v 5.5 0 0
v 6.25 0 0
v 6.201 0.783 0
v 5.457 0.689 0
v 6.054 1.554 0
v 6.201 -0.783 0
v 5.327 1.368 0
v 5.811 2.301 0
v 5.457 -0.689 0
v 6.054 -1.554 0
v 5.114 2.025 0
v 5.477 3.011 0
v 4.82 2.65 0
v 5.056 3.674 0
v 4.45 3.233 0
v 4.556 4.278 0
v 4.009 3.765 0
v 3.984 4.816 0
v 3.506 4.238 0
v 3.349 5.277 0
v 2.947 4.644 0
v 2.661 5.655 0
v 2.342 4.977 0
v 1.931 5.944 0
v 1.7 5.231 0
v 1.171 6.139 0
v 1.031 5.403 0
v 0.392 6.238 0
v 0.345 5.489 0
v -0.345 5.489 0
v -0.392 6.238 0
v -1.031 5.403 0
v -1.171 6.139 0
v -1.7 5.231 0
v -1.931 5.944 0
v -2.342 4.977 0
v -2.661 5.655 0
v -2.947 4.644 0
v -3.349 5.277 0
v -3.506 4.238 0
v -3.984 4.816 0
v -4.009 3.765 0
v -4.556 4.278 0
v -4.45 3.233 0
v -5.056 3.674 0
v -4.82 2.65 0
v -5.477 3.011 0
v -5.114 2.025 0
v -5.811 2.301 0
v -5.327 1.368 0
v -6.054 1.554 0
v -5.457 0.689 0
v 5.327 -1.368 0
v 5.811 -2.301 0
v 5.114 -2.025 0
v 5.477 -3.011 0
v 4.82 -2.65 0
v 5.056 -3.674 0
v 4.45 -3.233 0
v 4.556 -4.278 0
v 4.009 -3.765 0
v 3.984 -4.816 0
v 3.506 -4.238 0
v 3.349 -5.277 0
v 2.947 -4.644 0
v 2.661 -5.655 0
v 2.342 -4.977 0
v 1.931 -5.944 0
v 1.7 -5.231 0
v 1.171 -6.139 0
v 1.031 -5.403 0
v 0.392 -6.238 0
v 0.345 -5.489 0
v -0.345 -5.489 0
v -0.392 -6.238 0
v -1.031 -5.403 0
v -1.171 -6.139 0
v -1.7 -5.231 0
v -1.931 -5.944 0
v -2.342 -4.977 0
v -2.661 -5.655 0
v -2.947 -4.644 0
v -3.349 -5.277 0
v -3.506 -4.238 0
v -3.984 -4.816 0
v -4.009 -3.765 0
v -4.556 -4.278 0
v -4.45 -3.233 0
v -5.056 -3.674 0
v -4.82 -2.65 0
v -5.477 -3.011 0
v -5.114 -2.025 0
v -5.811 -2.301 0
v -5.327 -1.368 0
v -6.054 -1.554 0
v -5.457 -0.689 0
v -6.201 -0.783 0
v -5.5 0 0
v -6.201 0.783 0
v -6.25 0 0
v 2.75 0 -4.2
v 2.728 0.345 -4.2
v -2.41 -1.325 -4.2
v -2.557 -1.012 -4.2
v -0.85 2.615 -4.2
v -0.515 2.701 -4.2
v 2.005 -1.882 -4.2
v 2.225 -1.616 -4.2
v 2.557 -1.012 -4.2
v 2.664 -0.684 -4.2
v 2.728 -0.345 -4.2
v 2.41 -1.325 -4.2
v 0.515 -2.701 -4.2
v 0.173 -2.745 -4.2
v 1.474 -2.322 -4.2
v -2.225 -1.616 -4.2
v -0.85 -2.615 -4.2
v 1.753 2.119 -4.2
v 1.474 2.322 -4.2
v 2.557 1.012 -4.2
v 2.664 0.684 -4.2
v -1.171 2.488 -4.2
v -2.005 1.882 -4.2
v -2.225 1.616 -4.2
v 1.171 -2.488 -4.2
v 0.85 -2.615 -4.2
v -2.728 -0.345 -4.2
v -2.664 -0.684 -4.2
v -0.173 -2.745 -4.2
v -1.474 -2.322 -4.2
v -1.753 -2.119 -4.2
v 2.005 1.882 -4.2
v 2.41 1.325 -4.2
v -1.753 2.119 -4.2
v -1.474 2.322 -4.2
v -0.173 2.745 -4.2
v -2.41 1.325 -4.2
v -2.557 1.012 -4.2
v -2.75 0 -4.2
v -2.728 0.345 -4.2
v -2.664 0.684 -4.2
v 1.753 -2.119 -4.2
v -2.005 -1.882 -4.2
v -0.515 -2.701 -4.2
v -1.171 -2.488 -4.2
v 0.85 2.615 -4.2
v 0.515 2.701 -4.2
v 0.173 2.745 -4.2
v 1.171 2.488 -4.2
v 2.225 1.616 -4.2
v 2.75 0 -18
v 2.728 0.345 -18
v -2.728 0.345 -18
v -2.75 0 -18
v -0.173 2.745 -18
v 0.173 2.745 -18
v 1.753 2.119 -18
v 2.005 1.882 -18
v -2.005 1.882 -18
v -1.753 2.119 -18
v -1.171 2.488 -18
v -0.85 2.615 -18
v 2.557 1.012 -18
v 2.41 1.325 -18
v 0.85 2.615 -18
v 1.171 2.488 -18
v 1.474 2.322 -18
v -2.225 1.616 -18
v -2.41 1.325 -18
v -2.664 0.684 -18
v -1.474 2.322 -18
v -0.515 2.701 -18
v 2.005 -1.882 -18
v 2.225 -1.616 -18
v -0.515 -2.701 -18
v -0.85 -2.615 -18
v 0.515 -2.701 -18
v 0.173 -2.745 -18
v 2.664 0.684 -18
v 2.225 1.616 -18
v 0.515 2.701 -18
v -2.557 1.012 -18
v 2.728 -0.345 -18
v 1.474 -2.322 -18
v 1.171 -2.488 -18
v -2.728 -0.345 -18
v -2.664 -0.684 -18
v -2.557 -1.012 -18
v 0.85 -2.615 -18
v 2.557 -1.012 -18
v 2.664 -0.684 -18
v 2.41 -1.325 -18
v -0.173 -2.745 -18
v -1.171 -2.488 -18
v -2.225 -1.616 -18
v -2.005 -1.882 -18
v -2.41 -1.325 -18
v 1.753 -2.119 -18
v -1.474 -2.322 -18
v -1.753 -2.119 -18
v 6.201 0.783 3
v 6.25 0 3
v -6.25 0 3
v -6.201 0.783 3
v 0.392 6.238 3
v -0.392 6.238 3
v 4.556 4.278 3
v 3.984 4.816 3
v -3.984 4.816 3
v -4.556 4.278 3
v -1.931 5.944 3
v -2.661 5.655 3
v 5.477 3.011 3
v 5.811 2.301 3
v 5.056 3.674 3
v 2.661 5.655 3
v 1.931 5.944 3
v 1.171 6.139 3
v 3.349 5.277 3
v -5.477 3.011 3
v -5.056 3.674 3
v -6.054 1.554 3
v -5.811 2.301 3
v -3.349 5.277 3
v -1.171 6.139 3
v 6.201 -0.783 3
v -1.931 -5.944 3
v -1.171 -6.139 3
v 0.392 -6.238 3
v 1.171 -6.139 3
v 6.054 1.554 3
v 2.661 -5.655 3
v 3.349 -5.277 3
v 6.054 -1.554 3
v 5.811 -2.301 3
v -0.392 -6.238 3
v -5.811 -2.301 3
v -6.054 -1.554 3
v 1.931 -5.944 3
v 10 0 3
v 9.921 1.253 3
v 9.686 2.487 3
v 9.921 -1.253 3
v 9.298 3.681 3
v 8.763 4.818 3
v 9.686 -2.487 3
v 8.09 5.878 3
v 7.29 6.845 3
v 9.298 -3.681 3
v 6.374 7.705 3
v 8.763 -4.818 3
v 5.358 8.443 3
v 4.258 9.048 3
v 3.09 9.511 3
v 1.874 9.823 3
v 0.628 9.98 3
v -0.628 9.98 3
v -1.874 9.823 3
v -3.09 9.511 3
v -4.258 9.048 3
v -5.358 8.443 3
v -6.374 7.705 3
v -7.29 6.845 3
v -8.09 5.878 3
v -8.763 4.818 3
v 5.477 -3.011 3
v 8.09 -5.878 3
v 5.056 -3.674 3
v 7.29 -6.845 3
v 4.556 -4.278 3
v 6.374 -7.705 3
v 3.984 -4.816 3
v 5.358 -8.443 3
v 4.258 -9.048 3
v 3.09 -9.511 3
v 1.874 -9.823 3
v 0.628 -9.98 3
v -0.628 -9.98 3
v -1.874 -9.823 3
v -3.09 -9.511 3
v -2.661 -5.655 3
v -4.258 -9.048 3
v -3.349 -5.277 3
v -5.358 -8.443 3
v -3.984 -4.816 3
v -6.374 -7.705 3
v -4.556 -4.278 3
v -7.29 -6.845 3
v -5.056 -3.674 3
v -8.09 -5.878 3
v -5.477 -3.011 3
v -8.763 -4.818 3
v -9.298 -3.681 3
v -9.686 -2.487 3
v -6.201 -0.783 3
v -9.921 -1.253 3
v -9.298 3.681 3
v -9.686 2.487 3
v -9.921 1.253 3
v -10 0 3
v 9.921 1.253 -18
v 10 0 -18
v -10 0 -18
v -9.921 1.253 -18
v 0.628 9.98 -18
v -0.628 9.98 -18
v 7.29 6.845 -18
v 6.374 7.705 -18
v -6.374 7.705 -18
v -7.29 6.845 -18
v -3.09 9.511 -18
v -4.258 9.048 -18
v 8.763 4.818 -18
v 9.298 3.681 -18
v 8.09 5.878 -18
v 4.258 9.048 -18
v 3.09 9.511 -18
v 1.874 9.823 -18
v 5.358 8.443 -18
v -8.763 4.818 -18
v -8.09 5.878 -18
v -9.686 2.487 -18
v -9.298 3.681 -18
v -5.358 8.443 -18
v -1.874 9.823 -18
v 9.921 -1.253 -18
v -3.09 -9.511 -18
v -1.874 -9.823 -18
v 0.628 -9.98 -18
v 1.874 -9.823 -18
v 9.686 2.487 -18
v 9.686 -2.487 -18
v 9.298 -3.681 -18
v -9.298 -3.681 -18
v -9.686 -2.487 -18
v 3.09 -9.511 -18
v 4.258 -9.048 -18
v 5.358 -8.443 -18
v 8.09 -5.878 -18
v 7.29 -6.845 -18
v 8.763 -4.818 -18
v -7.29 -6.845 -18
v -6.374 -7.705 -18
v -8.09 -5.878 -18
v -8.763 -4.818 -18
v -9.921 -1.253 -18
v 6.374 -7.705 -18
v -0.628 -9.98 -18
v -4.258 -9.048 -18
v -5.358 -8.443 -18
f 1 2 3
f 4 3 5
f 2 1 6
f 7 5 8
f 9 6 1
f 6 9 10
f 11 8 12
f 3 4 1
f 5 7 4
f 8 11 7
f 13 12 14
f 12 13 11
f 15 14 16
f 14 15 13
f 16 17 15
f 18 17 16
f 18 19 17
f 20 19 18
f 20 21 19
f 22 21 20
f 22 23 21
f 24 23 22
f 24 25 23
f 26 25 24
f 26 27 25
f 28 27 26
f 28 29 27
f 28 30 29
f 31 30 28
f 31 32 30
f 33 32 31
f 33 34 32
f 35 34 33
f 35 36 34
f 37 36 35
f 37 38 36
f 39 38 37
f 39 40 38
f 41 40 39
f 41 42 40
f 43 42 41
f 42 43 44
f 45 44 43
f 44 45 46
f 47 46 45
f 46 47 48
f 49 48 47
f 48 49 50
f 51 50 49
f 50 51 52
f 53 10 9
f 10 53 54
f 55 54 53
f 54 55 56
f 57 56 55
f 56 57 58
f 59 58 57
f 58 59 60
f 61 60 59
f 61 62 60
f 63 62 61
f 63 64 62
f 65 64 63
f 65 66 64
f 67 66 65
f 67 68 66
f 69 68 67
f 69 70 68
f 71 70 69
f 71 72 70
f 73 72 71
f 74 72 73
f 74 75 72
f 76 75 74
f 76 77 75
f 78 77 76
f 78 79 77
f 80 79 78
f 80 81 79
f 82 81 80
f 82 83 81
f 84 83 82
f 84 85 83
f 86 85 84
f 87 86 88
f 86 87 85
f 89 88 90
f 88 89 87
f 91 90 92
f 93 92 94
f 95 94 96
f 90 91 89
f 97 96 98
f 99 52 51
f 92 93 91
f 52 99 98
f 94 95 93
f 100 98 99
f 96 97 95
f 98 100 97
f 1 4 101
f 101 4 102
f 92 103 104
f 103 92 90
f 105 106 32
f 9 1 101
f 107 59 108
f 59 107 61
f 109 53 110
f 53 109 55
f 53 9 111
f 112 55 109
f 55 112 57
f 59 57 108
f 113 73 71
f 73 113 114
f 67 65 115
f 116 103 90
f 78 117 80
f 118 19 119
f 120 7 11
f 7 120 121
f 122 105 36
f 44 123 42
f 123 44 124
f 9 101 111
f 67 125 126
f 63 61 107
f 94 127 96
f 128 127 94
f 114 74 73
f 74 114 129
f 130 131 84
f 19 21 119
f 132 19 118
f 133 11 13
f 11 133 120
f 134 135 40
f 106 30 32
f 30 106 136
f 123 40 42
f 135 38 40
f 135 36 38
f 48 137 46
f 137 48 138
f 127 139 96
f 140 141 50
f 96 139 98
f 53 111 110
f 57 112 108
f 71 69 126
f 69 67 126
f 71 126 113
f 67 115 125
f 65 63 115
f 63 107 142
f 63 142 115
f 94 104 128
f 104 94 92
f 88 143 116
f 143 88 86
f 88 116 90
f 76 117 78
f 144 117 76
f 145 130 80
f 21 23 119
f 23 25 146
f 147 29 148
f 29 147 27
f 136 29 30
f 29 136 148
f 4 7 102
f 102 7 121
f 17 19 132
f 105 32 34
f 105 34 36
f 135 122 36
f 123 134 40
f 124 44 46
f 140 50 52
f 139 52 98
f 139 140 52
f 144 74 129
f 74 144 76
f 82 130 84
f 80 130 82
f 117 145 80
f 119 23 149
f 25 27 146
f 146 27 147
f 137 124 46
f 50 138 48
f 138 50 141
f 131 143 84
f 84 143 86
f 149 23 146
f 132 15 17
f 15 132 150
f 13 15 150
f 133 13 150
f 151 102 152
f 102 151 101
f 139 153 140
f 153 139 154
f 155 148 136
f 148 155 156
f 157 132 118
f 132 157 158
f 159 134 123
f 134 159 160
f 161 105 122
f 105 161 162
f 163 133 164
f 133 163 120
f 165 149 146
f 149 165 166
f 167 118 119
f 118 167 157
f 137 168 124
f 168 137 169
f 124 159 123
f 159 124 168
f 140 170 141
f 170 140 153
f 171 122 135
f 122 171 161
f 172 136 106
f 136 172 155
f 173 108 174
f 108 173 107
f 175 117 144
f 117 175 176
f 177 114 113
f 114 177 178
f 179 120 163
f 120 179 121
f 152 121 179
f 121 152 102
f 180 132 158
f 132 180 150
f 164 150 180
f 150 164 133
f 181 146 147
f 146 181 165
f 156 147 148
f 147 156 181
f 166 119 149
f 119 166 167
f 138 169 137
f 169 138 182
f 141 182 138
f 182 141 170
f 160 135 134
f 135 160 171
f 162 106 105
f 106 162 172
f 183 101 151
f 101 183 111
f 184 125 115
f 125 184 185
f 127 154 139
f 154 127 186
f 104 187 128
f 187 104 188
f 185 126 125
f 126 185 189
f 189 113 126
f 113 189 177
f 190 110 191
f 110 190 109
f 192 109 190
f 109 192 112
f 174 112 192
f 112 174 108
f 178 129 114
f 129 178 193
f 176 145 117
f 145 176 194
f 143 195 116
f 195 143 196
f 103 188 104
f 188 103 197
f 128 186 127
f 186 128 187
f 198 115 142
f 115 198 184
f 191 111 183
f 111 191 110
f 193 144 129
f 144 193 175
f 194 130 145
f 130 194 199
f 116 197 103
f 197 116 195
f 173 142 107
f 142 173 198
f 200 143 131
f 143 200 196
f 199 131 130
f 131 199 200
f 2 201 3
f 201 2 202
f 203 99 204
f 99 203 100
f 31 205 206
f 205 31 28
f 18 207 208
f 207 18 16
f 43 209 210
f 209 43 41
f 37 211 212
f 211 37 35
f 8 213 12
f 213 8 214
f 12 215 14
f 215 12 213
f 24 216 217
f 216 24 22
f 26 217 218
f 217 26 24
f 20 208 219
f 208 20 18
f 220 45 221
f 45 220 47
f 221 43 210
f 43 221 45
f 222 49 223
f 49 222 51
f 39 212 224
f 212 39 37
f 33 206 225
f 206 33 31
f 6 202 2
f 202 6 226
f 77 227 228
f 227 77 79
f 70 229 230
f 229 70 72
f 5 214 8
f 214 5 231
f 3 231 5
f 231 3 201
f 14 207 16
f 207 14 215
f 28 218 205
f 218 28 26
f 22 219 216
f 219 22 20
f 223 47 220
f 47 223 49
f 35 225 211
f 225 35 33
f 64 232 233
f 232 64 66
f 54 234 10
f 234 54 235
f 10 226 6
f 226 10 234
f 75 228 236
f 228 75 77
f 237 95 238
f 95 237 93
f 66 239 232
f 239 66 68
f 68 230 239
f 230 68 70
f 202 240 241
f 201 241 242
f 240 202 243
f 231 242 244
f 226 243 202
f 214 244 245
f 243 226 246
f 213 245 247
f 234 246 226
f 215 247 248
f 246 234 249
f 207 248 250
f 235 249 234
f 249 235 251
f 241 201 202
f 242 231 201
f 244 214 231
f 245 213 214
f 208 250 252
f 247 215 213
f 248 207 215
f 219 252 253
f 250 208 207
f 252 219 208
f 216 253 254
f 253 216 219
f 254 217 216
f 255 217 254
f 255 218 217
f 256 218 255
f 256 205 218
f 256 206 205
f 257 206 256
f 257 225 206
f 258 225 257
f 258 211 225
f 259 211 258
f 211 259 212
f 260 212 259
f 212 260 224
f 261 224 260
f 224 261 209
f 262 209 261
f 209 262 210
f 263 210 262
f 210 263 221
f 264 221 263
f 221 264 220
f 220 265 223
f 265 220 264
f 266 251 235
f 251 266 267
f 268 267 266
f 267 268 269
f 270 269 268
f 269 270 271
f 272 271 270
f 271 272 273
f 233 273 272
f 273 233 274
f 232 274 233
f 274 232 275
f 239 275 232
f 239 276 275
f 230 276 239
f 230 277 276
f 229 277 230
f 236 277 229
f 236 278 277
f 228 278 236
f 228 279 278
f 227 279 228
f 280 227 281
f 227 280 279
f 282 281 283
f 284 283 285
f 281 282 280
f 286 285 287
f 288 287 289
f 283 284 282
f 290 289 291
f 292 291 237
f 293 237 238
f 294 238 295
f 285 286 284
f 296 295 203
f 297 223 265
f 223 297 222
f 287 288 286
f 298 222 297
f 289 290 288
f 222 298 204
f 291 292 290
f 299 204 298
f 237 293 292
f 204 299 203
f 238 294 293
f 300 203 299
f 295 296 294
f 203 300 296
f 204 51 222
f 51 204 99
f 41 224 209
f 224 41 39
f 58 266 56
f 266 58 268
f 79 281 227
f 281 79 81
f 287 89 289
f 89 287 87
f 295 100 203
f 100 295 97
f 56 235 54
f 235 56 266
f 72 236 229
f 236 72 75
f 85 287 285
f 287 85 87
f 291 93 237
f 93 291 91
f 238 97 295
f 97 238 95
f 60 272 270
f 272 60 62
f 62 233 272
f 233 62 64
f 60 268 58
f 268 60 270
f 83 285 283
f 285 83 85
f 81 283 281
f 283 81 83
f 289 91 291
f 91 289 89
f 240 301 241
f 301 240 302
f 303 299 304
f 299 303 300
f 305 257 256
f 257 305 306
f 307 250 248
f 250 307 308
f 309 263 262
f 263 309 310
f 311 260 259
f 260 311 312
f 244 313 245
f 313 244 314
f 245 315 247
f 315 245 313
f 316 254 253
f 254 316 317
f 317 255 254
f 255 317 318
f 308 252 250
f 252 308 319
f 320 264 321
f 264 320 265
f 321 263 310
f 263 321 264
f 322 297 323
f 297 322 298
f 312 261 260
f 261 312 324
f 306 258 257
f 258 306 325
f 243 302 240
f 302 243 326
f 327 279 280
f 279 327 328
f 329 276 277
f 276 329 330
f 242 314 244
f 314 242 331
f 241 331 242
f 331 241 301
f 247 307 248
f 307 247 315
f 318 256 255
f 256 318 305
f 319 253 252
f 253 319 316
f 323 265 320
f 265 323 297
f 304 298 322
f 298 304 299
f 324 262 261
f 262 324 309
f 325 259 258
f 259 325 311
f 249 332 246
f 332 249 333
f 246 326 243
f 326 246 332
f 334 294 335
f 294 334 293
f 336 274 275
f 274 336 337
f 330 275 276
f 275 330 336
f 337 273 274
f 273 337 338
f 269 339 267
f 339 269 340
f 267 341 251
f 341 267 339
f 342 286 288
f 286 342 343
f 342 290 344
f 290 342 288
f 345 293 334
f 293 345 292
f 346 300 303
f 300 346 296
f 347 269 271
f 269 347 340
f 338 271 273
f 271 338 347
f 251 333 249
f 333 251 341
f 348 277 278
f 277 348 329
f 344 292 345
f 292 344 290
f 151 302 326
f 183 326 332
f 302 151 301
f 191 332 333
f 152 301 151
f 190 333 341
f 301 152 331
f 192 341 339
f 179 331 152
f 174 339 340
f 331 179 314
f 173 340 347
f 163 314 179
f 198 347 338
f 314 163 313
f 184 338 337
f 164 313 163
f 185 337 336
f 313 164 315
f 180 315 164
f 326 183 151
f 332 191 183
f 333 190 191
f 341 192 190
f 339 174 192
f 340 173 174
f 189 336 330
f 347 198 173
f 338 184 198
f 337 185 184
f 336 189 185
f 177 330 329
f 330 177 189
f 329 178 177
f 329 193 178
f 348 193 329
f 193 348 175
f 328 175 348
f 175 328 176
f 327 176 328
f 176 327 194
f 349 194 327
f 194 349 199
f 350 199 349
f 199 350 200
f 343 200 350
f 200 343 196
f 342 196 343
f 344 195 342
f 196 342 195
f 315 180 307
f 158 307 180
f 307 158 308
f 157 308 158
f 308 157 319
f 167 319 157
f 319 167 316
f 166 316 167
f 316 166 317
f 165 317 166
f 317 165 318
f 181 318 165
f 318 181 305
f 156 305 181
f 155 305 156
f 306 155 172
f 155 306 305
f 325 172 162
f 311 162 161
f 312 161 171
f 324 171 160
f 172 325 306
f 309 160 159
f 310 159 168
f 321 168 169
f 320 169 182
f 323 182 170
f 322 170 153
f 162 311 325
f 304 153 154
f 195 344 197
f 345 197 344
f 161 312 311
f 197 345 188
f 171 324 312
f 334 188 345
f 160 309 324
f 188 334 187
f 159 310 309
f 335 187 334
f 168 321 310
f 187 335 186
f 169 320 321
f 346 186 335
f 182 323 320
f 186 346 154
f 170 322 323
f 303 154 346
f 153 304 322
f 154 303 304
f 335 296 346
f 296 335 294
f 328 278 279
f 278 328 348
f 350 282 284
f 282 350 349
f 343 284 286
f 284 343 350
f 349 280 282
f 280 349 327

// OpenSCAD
$fn = 50;


difference() {
	union() {
		translate(v = [0, 0, -18.0000000000]) {
			cylinder(h = 21, r = 10.0000000000);
		}
	}
	union() {
		translate(v = [0, 0, 0]) {
			rotate(a = [0, 0, 0]) {
				difference() {
					union() {
						translate(v = [0, 0, -21.0000000000]) {
							cylinder(h = 21, r = 2.2500000000);
						}
						translate(v = [0, 0, -4.2000000000]) {
							cylinder(h = 4.2000000000, r1 = 2.7500000000, r2 = 5.5000000000);
						}
						translate(v = [0, 0, -21.0000000000]) {
							cylinder(h = 21, r = 2.7500000000);
						}
						translate(v = [0, 0, -21.0000000000]) {
							cylinder(h = 21, r = 2.2500000000);
						}
					}
					union();
				}
			}
		}
		#cylinder(h = 3, r = 6.2500000000);
	}
}
